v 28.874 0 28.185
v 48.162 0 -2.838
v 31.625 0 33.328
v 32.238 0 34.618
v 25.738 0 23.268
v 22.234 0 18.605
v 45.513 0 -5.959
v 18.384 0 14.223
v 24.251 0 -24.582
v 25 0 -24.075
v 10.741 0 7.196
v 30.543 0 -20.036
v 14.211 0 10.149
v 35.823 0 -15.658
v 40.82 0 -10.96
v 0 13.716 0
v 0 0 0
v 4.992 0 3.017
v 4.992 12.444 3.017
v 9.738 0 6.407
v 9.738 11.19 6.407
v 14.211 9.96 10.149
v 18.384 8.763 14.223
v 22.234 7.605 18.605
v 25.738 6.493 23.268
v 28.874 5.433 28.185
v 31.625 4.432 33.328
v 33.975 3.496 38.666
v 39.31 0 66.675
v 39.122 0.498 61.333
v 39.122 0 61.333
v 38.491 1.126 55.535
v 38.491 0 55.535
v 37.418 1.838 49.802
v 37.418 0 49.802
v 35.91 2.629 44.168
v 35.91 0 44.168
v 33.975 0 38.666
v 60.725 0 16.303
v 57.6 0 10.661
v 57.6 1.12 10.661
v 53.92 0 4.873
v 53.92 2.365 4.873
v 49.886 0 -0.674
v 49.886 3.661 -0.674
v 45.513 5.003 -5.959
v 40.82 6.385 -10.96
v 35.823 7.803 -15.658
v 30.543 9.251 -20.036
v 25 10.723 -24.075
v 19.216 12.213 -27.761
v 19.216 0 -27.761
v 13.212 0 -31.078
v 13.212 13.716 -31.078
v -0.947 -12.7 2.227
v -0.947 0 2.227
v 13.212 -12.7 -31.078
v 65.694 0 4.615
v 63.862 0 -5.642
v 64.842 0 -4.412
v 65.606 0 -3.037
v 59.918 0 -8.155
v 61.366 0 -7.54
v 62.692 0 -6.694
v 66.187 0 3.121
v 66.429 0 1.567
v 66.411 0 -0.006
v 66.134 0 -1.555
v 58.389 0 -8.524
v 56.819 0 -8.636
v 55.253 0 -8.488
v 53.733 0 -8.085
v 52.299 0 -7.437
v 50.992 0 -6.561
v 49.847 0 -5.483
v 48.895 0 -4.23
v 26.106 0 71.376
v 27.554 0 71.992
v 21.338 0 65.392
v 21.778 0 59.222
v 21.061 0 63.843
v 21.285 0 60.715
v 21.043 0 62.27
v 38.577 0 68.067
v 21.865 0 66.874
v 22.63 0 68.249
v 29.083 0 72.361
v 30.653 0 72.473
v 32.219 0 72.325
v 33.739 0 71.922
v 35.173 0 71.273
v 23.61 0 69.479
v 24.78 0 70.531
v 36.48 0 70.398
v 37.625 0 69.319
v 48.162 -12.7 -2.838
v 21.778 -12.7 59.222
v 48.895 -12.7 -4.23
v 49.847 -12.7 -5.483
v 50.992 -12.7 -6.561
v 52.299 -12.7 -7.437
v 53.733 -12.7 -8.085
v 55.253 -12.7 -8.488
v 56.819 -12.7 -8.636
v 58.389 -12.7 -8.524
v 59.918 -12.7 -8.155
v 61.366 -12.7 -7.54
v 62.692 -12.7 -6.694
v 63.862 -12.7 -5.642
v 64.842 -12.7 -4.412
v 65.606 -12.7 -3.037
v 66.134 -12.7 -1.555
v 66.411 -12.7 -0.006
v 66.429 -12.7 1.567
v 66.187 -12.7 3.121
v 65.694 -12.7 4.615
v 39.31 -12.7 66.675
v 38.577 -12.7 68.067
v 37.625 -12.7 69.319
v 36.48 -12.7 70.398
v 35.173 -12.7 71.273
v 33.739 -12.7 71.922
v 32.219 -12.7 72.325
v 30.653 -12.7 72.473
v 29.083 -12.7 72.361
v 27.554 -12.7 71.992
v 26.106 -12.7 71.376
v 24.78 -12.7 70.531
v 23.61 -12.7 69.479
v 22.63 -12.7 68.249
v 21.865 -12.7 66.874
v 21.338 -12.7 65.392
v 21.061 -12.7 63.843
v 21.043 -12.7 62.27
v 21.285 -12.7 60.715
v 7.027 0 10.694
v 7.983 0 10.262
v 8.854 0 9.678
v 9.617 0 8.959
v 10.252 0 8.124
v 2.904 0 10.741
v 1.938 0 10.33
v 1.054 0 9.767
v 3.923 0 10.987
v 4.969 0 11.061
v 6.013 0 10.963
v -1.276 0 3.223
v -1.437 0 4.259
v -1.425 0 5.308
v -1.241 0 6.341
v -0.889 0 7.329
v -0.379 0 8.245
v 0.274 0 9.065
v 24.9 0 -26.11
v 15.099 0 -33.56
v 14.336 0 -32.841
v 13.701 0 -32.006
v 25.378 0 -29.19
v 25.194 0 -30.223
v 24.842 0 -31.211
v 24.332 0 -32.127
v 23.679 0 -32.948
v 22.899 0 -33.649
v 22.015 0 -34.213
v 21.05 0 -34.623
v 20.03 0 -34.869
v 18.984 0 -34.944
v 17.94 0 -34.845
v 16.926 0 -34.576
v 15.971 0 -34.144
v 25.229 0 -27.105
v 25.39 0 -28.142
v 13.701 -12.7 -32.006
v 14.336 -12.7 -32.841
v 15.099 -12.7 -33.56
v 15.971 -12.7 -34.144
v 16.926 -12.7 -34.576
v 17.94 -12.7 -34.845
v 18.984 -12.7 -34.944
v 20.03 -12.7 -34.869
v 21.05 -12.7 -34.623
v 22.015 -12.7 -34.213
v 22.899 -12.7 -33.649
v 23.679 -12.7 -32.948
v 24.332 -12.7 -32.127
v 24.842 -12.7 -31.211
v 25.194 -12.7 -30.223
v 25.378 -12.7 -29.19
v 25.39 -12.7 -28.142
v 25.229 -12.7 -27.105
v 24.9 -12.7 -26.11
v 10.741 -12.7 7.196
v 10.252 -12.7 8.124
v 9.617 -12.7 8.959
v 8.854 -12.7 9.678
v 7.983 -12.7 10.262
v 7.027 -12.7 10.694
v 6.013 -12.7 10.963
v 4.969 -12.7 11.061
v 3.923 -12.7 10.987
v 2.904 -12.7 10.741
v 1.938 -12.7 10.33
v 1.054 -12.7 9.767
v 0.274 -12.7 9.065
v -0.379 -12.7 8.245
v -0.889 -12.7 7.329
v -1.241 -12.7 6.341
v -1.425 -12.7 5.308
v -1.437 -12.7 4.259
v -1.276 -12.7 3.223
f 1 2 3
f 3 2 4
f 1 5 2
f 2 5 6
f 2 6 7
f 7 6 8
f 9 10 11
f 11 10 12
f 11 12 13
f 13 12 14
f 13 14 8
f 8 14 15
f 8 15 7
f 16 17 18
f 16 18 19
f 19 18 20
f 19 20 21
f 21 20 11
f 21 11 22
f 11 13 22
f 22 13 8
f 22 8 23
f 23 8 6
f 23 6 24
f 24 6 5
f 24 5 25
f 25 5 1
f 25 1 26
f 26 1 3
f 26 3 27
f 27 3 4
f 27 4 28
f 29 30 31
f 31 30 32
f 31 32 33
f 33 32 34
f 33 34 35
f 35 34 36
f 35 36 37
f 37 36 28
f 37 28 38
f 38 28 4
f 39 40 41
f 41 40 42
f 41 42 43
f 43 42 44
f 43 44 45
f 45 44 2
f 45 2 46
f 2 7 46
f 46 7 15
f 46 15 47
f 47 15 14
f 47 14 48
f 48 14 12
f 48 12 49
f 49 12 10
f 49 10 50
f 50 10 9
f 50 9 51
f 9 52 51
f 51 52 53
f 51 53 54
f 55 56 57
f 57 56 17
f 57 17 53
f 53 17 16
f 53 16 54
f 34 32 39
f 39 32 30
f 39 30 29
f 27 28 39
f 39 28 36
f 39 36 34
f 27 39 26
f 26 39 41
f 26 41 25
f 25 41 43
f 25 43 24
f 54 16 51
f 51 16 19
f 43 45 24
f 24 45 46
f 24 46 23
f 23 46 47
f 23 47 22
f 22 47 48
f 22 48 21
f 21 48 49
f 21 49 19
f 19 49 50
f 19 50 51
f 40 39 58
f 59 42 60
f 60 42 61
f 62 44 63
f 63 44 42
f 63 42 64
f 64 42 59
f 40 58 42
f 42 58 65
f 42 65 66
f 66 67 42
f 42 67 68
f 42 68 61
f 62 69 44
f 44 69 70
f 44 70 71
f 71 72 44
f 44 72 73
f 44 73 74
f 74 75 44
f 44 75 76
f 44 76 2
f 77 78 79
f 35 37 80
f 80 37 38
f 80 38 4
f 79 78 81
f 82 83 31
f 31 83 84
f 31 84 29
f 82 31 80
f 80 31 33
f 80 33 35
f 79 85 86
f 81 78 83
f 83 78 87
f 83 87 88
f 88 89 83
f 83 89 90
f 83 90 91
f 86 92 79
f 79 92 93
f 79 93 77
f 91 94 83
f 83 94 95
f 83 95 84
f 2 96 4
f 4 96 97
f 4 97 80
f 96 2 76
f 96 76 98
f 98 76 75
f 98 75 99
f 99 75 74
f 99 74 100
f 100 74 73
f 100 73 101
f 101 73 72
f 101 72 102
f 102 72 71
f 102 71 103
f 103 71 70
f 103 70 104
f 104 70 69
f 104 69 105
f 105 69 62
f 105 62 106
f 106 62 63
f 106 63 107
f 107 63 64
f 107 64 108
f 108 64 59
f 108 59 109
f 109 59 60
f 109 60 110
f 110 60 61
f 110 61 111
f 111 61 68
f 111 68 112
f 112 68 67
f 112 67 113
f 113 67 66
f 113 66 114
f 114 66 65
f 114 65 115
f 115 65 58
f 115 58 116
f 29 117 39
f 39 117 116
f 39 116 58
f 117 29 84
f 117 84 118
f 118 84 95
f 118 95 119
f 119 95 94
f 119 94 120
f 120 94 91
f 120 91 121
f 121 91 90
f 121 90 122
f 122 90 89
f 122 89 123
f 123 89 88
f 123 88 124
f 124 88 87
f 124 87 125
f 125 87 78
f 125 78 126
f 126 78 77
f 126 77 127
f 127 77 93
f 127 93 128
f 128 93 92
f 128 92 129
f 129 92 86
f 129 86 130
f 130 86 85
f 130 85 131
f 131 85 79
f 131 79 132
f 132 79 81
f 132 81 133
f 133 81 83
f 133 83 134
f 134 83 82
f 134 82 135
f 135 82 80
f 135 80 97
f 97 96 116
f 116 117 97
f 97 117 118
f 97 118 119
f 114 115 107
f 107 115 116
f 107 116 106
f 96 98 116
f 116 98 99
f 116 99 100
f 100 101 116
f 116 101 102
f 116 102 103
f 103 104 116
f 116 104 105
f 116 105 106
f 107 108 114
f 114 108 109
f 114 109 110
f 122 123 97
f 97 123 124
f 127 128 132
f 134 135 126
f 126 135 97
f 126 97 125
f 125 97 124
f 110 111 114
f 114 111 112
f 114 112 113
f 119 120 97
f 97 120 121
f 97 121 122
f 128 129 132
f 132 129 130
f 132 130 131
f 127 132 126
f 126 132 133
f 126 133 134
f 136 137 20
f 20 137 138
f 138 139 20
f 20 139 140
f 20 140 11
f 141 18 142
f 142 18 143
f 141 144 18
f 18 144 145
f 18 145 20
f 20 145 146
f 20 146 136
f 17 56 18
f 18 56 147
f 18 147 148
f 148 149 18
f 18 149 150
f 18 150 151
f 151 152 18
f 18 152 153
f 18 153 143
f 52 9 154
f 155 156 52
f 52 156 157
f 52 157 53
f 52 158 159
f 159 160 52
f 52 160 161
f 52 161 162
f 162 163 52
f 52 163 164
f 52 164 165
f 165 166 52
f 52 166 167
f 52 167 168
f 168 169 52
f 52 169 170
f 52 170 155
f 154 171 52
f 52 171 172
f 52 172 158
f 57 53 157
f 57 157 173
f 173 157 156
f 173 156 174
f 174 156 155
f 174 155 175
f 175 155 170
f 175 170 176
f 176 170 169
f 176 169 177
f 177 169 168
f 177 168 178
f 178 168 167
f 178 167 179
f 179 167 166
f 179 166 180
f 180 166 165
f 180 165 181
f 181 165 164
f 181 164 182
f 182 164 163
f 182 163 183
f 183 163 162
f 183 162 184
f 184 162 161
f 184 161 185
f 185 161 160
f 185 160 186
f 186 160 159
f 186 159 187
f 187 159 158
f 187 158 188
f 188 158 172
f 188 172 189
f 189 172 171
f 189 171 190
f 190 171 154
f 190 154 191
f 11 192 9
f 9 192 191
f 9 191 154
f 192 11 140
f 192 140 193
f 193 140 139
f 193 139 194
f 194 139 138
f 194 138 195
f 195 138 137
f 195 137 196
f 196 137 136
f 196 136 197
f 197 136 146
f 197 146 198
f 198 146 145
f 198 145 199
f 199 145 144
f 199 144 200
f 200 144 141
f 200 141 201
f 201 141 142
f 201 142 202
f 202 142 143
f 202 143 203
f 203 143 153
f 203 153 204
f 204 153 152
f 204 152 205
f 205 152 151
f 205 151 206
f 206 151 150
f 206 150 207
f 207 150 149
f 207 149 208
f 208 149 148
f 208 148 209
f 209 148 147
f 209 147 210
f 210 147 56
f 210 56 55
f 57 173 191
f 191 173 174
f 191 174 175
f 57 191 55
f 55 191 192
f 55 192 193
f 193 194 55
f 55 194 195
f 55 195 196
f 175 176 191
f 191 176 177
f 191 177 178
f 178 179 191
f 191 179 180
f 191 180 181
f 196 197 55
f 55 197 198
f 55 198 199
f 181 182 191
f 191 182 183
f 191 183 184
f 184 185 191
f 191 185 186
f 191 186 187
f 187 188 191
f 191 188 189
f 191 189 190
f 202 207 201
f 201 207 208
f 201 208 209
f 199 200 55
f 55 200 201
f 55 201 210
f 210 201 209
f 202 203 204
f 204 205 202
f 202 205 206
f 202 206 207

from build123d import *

# Parameters (mm, degrees)
BOSS_EXTRUDE4_DEPTH    = 13.716
CUT_EXTRUDE2_START     = 13.394831099
CUT_EXTRUDE2_OUTLINE_W = 71
CUT_EXTRUDE2_OUTLINE_H = 102
CUT_EXTRUDE2_DEPTH     = 19.052275388
BOSS_EXTRUDE7_DEPTH    = 12.7


# Read off the part's stored shape, not the designer's step: Cut-Extrude2
with BuildPart() as part:
    # Sketch2 → Boss-Extrude4 (new body)
    with BuildSketch(Plane(origin=(0, 0, 0), x_dir=(1, 0, 0), z_dir=(0, 1, 0))):
        with BuildLine():
            Line((0, 0), (13.212422732, 31.078396728))
            ThreePointArc((13.212422732, 31.078396728), (47.046788058, 4.181077282), (67.884833627, -33.687193436))
            Line((67.884833627, -33.687193436), (67.884833627, -66.675))
            Line((67.884833627, -66.675), (39.309833627, -66.675))
            ThreePointArc((39.309833627, -66.675), (28.750791411, -27.974810579), (0, 0))
        make_face()
    extrude(amount=BOSS_EXTRUDE4_DEPTH)

    # Cut-Extrude2 outline → Cut-Extrude2 (cut)
    with BuildSketch(Plane(origin=(0, 0, 0), x_dir=(0.9802048878944475, -0.19725451306837943, -0.017001024145327306), z_dir=(0.19798580188446208, 0.9765843612447384, 0.08417011122942132)).offset(CUT_EXTRUDE2_START)):
        with Locations((31.5, -17)):
            Rectangle(CUT_EXTRUDE2_OUTLINE_W, CUT_EXTRUDE2_OUTLINE_H)
    extrude(amount=CUT_EXTRUDE2_DEPTH, mode=Mode.SUBTRACT)

    # Sketch16 → Boss-Extrude7 (add)
    with BuildSketch(Plane.XZ):
        with BuildLine():
            Line((32.238416067, 34.617565762), (48.16212184, -2.83833884))
            ThreePointArc((48.16212184, -2.83833884), (60.654452135, -7.877479025), (65.69359232, 4.614851269))
            Line((65.69359232, 4.614851269), (60.724626835, 16.302903023))
            Line((60.724626835, 16.302903023), (39.309833627, 66.675))
            ThreePointArc((39.309833627, 66.675), (26.817503332, 71.714140186), (21.778363147, 59.221809891))
            Line((21.778363147, 59.221809891), (32.238416067, 34.617565762))
        make_face()
        with BuildLine():
            Line((10.740738204, 7.196121991), (24.250560746, -24.581821632))
            Line((24.250560746, -24.581821632), (24.900069719, -26.109603322))
            ThreePointArc((24.900069719, -26.109603322), (21.540642929, -34.437823519), (13.212422732, -31.078396728))
            Line((13.212422732, -31.078396728), (0, 0))
            Line((0, 0), (-0.946908783, 2.227328585))
            ThreePointArc((-0.946908783, 2.227328585), (2.412518007, 10.555548781), (10.740738204, 7.196121991))
        make_face()
    extrude(amount=BOSS_EXTRUDE7_DEPTH)


solid = part.part
